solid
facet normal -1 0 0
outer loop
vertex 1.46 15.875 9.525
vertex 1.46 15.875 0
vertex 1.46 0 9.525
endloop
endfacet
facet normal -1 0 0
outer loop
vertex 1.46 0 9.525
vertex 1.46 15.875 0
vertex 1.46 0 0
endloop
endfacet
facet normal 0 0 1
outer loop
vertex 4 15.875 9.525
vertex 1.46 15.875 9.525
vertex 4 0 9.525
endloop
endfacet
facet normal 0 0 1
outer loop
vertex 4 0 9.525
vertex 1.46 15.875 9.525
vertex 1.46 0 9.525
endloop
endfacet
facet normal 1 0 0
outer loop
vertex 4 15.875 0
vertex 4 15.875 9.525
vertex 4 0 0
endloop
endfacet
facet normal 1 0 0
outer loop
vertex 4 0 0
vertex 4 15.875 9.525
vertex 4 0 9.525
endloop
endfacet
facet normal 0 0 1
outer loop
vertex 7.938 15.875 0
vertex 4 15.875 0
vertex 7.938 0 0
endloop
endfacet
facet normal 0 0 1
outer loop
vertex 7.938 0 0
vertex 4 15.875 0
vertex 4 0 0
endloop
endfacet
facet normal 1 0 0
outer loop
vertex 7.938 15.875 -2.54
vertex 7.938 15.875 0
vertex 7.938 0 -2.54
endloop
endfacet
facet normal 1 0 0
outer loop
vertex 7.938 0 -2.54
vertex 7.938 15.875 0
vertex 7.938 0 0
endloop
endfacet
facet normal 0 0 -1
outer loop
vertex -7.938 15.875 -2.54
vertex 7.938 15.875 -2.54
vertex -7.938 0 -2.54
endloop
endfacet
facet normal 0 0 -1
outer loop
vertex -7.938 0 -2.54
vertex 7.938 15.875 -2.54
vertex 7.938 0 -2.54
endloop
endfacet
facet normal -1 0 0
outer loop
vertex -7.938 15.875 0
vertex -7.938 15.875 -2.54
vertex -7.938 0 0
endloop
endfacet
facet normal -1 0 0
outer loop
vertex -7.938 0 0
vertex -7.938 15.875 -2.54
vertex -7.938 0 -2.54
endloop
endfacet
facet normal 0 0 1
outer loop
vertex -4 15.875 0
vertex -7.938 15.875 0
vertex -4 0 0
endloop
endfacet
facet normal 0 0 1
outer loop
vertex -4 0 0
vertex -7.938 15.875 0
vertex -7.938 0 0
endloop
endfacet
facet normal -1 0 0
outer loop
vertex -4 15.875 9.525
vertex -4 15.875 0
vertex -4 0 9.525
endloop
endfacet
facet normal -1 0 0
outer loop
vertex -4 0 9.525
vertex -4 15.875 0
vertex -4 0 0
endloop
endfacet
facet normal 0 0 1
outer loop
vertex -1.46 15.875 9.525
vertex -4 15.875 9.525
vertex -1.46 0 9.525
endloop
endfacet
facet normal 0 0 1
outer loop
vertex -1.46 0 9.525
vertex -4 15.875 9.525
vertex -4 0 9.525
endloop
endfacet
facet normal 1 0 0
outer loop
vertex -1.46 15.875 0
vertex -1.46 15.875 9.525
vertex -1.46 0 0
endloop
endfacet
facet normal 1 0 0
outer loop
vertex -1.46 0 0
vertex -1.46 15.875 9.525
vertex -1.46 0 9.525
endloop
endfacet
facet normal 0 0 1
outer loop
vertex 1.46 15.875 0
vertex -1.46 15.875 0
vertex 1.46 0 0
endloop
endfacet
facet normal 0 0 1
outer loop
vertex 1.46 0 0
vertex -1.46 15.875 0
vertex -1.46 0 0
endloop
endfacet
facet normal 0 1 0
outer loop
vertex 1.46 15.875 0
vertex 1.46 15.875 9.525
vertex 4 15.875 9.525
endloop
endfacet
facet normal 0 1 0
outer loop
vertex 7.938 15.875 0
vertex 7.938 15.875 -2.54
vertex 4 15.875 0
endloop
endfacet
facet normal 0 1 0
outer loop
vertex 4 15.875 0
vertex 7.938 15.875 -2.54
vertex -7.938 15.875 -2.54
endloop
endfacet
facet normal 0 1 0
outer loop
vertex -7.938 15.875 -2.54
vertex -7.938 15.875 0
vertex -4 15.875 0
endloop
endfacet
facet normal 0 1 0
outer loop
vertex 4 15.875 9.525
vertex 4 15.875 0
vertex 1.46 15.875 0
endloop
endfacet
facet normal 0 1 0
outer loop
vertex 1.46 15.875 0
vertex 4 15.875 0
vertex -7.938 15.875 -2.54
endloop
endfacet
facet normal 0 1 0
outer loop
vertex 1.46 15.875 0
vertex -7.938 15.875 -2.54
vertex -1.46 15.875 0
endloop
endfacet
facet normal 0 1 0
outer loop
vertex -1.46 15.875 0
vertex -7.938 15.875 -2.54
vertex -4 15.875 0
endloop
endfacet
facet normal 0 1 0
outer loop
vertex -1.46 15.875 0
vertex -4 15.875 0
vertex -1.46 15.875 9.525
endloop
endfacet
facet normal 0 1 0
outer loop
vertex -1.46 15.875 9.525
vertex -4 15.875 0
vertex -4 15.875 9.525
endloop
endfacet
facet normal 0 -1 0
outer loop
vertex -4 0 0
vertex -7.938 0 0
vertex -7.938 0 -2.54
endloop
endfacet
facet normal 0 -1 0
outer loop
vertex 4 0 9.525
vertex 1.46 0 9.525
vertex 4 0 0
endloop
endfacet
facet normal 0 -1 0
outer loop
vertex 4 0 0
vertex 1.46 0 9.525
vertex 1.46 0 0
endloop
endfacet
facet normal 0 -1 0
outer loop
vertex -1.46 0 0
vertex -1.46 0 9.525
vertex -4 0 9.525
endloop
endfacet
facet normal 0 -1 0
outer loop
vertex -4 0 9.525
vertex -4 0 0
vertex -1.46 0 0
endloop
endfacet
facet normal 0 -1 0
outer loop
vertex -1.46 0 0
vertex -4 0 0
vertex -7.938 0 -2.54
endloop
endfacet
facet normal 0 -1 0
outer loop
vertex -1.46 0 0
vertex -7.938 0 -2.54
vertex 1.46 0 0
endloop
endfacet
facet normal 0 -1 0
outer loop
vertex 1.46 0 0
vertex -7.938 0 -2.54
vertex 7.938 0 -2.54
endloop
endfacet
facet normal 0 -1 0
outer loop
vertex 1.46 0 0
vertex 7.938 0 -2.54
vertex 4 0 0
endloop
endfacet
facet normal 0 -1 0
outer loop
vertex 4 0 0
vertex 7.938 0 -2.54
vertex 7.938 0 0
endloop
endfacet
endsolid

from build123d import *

# Parameters (mm, degrees)
SKETCH1_W           = 3.937
SKETCH1_H           = 2.54
BOSS_EXTRUDE1_DEPTH = 15.875


with BuildPart() as part:
    # Sketch1 → Boss-Extrude1 (new body)
    with BuildSketch(Plane(origin=(0, 0, 0), x_dir=(1, 0, 0), z_dir=(0, 1, 0))):
        Polygon((4.0005, 2.54), (-4.0005, 2.54), (-4.0005, 0), (-4.0005, -9.525), (-1.4605, -9.525), (-1.4605, 0), (1.4605, 0), (1.4605, -9.525), (4.0005, -9.525), (4.0005, 0), align=None)
        with Locations((-5.969, 1.27)):
            Rectangle(SKETCH1_W, SKETCH1_H)
        with Locations((5.969, 1.27)):
            Rectangle(SKETCH1_W, SKETCH1_H)
    extrude(amount=BOSS_EXTRUDE1_DEPTH)


solid = part.part
